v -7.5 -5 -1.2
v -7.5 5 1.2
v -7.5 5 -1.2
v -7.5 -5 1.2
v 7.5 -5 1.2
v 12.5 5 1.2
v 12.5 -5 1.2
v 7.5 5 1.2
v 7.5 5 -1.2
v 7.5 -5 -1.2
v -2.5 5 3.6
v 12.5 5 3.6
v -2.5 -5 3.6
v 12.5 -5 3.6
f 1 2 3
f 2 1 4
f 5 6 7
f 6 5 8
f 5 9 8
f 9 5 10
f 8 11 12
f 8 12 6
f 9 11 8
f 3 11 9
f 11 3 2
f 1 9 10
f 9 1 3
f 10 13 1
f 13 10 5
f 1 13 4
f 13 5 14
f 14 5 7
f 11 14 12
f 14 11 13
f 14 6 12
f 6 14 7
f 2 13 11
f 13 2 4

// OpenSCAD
cube([15,10,2.4],center=true);
translate([5,0,2.4])
    cube([15,10,2.4],center=true);
translate([-7.5,5,1.2])
    rotate([90,0,0])
        linear_extrude(10)    
            polygon([[0, 0], [5, 0], [5, 2.4]]);
